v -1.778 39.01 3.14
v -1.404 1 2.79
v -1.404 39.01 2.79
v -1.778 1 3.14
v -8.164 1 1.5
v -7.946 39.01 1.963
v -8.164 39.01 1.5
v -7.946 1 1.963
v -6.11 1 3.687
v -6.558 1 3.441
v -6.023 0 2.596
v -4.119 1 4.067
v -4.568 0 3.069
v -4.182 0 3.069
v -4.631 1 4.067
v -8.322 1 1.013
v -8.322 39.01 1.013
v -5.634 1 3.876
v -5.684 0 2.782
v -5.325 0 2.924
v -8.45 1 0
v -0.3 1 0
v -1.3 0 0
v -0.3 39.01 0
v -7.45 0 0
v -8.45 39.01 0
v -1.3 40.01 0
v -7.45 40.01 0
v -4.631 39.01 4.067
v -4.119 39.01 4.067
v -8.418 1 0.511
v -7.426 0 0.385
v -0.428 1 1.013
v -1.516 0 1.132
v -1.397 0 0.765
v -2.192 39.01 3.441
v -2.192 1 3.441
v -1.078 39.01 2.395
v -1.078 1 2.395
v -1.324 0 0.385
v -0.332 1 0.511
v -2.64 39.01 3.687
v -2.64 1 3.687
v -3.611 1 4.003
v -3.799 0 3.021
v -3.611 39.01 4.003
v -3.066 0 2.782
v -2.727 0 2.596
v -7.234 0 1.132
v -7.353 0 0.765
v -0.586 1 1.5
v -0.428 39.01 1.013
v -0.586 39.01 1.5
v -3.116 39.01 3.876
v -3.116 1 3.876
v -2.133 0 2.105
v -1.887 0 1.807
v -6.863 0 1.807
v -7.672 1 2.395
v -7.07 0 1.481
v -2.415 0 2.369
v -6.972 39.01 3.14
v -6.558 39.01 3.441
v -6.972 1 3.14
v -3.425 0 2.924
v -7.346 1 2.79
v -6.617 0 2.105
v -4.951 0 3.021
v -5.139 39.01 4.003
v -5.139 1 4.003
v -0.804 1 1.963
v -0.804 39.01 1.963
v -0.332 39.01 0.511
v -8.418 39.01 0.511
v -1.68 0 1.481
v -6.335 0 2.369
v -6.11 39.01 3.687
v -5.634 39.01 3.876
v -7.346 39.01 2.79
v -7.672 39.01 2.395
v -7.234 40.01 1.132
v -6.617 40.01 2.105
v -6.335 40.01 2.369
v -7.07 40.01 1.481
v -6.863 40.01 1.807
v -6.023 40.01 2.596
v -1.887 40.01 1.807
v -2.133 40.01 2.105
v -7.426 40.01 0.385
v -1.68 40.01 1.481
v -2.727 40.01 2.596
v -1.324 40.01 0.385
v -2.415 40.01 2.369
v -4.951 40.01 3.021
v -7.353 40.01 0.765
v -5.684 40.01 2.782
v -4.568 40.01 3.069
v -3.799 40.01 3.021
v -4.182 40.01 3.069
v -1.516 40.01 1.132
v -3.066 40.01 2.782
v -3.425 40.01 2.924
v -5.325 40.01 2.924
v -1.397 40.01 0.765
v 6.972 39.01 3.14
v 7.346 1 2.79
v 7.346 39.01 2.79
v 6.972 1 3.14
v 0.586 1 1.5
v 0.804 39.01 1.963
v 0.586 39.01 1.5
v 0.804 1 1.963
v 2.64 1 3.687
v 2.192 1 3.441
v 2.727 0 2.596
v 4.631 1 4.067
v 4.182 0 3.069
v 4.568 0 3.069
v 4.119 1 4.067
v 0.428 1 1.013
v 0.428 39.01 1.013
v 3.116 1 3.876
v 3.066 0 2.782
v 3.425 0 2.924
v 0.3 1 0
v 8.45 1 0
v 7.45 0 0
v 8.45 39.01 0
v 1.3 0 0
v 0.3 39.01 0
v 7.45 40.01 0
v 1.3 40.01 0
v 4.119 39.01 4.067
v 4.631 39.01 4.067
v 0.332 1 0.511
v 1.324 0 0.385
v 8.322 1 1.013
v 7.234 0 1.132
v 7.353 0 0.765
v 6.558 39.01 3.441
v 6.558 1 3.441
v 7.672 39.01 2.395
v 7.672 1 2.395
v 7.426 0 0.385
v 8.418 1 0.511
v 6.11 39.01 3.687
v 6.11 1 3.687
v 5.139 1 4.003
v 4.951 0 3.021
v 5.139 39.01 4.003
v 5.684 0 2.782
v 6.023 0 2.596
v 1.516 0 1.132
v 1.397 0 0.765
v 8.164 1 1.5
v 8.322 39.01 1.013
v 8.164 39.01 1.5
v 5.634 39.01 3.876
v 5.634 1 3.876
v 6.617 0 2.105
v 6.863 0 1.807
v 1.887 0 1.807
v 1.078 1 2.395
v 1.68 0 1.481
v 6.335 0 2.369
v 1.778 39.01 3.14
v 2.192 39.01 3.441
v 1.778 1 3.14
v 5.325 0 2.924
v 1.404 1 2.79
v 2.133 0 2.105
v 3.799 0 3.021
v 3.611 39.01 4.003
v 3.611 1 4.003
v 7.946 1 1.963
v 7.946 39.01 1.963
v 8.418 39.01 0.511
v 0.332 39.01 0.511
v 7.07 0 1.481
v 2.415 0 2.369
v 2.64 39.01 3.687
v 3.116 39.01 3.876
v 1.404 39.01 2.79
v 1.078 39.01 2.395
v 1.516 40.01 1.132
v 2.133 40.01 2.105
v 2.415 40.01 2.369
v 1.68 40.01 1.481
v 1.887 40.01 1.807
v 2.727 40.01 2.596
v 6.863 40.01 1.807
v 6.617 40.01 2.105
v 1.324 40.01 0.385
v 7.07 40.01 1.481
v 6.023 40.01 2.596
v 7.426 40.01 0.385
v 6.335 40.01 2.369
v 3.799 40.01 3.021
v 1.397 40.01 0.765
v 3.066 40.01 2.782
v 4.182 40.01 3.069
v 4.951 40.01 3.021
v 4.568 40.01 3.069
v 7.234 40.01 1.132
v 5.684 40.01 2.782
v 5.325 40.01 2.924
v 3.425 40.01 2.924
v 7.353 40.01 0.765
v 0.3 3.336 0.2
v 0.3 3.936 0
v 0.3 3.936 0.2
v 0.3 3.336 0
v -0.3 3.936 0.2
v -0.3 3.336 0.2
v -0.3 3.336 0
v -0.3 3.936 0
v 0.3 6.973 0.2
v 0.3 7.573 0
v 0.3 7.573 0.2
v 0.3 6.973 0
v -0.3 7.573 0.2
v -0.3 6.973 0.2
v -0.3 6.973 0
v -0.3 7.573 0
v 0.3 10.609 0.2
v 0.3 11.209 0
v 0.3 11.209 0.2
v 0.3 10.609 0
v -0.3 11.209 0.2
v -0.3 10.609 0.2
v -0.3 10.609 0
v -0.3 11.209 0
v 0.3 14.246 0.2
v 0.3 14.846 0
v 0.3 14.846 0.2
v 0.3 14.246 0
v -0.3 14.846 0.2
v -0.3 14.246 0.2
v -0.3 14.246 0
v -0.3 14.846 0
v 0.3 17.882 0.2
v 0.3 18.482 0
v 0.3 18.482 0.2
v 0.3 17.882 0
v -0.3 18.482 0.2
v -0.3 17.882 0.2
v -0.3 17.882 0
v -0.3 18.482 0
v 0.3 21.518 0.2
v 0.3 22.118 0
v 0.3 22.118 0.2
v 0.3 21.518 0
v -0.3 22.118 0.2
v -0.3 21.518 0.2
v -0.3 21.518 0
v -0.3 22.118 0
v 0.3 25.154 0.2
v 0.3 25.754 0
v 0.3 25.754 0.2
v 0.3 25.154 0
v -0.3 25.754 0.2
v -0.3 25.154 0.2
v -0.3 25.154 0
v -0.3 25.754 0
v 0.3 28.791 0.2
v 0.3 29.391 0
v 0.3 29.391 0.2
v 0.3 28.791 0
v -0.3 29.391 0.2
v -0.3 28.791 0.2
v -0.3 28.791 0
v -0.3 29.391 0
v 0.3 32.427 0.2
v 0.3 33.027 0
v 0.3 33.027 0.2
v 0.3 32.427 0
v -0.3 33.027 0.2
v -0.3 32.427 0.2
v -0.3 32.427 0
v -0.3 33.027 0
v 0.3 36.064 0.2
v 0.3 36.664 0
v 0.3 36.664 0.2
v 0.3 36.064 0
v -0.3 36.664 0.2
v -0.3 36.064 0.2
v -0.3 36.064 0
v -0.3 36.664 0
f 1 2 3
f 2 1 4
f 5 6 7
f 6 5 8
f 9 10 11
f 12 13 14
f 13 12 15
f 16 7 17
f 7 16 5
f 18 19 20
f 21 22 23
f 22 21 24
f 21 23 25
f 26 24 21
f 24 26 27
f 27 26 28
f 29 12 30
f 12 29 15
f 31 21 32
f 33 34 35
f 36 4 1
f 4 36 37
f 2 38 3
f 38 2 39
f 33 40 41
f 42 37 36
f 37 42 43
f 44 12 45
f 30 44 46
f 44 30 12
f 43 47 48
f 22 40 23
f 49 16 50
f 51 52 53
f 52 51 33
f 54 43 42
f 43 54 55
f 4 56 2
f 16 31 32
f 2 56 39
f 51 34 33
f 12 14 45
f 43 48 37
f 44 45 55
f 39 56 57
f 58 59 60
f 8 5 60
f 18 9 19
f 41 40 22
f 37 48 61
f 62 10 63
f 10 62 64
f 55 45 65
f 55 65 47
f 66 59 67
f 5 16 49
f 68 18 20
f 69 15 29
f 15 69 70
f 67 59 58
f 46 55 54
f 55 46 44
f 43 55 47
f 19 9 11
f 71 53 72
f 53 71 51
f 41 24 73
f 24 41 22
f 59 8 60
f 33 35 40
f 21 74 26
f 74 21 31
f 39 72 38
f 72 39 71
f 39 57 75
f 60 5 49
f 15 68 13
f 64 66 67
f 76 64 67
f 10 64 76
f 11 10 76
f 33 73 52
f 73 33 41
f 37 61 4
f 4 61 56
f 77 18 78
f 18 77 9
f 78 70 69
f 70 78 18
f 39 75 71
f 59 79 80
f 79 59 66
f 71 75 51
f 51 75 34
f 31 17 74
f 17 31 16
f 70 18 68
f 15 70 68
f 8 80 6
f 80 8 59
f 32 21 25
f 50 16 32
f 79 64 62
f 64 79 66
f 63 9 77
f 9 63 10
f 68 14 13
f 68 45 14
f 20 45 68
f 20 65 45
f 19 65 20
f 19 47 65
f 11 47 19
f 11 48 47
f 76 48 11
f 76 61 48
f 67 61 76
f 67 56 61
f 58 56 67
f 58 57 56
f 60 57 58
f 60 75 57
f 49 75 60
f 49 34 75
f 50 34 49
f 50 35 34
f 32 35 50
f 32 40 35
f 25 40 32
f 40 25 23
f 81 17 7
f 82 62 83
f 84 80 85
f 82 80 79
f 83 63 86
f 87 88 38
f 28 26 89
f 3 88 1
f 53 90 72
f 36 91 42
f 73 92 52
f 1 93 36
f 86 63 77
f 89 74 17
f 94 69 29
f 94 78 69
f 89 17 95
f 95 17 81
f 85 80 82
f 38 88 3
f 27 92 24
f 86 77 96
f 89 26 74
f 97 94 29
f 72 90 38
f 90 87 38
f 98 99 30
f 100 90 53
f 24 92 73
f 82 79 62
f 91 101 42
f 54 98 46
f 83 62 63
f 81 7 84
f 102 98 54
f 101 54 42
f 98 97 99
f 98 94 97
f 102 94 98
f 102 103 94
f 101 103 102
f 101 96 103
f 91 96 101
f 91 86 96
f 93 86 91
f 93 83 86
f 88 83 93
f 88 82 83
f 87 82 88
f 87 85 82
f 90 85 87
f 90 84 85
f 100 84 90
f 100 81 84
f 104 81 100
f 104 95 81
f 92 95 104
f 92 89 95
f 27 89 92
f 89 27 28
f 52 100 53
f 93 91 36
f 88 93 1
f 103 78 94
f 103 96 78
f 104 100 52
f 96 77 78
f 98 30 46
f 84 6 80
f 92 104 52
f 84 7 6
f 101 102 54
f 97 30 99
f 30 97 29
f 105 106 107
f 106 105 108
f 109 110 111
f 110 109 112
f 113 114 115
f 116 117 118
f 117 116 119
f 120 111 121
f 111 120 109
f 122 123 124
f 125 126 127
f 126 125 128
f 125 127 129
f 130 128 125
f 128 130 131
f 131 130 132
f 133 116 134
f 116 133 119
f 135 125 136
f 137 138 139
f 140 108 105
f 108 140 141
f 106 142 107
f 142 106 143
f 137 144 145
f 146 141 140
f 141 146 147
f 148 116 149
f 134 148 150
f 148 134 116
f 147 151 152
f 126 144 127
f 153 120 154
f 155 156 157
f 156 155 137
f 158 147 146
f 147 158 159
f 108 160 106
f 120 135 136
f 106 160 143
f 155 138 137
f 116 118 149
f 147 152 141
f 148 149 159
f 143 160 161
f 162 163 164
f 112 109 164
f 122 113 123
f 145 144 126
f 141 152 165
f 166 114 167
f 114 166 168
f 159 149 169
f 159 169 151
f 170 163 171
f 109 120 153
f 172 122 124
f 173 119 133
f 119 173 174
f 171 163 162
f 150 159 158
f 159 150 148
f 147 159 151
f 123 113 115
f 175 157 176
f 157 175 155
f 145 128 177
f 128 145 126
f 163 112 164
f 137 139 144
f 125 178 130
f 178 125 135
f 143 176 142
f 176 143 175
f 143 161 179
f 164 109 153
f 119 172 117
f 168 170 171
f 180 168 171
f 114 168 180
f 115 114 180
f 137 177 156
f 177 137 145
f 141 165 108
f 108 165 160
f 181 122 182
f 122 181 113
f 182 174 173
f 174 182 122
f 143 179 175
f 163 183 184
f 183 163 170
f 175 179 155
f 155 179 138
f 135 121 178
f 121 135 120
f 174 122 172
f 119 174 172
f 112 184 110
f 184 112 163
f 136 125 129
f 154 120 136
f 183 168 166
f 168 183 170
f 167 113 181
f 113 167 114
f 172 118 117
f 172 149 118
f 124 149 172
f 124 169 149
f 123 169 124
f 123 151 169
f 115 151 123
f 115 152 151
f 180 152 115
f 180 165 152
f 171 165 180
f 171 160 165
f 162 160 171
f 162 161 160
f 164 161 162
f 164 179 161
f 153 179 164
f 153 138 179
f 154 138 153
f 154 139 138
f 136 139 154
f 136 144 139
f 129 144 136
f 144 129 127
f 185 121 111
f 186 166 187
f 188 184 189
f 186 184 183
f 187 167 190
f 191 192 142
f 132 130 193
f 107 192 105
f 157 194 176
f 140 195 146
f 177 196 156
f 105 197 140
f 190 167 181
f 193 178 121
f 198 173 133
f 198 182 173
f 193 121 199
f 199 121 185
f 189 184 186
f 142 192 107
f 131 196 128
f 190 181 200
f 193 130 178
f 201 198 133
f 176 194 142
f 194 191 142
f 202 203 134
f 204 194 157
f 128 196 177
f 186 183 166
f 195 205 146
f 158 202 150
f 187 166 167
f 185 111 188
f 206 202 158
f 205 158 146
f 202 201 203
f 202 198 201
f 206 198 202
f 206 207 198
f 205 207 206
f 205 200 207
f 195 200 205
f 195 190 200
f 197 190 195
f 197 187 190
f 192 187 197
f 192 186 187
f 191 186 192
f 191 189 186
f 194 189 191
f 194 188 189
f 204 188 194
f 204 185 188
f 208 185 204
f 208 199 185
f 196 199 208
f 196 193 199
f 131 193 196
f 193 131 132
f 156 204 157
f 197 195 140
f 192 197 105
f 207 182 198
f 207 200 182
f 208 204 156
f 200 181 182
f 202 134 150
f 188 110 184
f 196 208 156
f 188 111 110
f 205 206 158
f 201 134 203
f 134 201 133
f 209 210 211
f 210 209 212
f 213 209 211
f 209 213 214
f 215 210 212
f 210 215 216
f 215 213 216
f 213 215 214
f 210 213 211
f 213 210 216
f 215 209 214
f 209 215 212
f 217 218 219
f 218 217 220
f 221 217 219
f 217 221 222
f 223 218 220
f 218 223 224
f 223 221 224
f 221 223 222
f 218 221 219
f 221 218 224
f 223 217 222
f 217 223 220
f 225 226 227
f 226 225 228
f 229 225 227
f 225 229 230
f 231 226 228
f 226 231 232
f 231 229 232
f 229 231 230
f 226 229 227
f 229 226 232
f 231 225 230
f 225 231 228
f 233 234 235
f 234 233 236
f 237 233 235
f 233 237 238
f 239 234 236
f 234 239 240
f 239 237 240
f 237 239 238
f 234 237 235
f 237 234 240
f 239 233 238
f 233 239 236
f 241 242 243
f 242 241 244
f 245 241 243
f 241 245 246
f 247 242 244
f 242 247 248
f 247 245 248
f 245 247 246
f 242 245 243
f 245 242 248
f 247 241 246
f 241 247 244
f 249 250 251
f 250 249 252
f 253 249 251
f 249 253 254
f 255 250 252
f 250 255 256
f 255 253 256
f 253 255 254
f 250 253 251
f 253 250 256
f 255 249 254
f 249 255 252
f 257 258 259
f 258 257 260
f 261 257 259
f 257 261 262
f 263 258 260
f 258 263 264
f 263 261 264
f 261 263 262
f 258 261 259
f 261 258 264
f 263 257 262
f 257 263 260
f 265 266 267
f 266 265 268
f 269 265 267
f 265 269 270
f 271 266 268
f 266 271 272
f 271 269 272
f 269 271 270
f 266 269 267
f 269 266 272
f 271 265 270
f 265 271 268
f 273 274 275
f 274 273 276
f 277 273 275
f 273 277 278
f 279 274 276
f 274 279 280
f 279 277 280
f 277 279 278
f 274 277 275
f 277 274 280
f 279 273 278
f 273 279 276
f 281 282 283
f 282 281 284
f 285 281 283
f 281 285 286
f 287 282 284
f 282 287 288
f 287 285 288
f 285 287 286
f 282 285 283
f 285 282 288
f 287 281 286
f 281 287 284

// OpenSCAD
/**
 * Parametric Dowel Generator
 *
 * Replacement dowels for IKEA-style furniture panel connections.
 * Prints as two half-cylinders connected by living-hinge bridges,
 * then folds into a complete dowel — strongest FDM approach by
 * avoiding cross-layer shear on the cylinder.
 */

// --- Core Dimensions ---
diameter = 8.15; // [mm] Outer diameter
length = 40; // [mm] Total length

// --- Chamfer ---
chamfer_depth = 1.0; // [mm] Bevel depth along axis
chamfer_angle = 45; // [deg] Bevel angle

// --- Living Hinge ---
bridge_count = 10;
bridge_width = 0.6; // [mm] Width of each bridge along dowel length
bridge_thickness = 0.2; // [mm] Thickness (1-2 layer heights)
span_gap = 0.6; // [mm] Gap between flat faces

// --- Print Tuning ---
tolerance = 0.0; // [mm] Diameter reduction for fit adjustment
$fn = 50;

// --- Computed ---
radius = diameter / 2;
effective_radius = radius - tolerance;
tip_radius = max(0, effective_radius - chamfer_depth * tan(chamfer_angle));
bridge_spacing = length / (bridge_count + 1);

module semicircle(r) {
  polygon([for (a = [180:360/$fn:360]) [r * cos(a), r * sin(a)]]);
}

module half_dowel() {
  rotate([-90, 0, 0]) {
    // Bottom chamfer
    hull() {
      linear_extrude(0.01) semicircle(tip_radius);
      translate([0, 0, chamfer_depth])
        linear_extrude(0.01) semicircle(effective_radius);
    }
    // Main body
    translate([0, 0, chamfer_depth])
      linear_extrude(length - 2 * chamfer_depth) semicircle(effective_radius);
    // Top chamfer
    translate([0, 0, length - chamfer_depth]) hull() {
      linear_extrude(0.01) semicircle(effective_radius);
      translate([0, 0, chamfer_depth])
        linear_extrude(0.01) semicircle(tip_radius);
    }
  }
}

module bridges() {
  for (i = [1:bridge_count]) {
    y_pos = i * bridge_spacing;
    translate([-span_gap / 2, y_pos - bridge_width / 2, 0])
      cube([span_gap, bridge_width, bridge_thickness]);
  }
}

translate([-(effective_radius + span_gap / 2), 0, 0])
  half_dowel();
translate([effective_radius + span_gap / 2, 0, 0])
  half_dowel();
bridges();
